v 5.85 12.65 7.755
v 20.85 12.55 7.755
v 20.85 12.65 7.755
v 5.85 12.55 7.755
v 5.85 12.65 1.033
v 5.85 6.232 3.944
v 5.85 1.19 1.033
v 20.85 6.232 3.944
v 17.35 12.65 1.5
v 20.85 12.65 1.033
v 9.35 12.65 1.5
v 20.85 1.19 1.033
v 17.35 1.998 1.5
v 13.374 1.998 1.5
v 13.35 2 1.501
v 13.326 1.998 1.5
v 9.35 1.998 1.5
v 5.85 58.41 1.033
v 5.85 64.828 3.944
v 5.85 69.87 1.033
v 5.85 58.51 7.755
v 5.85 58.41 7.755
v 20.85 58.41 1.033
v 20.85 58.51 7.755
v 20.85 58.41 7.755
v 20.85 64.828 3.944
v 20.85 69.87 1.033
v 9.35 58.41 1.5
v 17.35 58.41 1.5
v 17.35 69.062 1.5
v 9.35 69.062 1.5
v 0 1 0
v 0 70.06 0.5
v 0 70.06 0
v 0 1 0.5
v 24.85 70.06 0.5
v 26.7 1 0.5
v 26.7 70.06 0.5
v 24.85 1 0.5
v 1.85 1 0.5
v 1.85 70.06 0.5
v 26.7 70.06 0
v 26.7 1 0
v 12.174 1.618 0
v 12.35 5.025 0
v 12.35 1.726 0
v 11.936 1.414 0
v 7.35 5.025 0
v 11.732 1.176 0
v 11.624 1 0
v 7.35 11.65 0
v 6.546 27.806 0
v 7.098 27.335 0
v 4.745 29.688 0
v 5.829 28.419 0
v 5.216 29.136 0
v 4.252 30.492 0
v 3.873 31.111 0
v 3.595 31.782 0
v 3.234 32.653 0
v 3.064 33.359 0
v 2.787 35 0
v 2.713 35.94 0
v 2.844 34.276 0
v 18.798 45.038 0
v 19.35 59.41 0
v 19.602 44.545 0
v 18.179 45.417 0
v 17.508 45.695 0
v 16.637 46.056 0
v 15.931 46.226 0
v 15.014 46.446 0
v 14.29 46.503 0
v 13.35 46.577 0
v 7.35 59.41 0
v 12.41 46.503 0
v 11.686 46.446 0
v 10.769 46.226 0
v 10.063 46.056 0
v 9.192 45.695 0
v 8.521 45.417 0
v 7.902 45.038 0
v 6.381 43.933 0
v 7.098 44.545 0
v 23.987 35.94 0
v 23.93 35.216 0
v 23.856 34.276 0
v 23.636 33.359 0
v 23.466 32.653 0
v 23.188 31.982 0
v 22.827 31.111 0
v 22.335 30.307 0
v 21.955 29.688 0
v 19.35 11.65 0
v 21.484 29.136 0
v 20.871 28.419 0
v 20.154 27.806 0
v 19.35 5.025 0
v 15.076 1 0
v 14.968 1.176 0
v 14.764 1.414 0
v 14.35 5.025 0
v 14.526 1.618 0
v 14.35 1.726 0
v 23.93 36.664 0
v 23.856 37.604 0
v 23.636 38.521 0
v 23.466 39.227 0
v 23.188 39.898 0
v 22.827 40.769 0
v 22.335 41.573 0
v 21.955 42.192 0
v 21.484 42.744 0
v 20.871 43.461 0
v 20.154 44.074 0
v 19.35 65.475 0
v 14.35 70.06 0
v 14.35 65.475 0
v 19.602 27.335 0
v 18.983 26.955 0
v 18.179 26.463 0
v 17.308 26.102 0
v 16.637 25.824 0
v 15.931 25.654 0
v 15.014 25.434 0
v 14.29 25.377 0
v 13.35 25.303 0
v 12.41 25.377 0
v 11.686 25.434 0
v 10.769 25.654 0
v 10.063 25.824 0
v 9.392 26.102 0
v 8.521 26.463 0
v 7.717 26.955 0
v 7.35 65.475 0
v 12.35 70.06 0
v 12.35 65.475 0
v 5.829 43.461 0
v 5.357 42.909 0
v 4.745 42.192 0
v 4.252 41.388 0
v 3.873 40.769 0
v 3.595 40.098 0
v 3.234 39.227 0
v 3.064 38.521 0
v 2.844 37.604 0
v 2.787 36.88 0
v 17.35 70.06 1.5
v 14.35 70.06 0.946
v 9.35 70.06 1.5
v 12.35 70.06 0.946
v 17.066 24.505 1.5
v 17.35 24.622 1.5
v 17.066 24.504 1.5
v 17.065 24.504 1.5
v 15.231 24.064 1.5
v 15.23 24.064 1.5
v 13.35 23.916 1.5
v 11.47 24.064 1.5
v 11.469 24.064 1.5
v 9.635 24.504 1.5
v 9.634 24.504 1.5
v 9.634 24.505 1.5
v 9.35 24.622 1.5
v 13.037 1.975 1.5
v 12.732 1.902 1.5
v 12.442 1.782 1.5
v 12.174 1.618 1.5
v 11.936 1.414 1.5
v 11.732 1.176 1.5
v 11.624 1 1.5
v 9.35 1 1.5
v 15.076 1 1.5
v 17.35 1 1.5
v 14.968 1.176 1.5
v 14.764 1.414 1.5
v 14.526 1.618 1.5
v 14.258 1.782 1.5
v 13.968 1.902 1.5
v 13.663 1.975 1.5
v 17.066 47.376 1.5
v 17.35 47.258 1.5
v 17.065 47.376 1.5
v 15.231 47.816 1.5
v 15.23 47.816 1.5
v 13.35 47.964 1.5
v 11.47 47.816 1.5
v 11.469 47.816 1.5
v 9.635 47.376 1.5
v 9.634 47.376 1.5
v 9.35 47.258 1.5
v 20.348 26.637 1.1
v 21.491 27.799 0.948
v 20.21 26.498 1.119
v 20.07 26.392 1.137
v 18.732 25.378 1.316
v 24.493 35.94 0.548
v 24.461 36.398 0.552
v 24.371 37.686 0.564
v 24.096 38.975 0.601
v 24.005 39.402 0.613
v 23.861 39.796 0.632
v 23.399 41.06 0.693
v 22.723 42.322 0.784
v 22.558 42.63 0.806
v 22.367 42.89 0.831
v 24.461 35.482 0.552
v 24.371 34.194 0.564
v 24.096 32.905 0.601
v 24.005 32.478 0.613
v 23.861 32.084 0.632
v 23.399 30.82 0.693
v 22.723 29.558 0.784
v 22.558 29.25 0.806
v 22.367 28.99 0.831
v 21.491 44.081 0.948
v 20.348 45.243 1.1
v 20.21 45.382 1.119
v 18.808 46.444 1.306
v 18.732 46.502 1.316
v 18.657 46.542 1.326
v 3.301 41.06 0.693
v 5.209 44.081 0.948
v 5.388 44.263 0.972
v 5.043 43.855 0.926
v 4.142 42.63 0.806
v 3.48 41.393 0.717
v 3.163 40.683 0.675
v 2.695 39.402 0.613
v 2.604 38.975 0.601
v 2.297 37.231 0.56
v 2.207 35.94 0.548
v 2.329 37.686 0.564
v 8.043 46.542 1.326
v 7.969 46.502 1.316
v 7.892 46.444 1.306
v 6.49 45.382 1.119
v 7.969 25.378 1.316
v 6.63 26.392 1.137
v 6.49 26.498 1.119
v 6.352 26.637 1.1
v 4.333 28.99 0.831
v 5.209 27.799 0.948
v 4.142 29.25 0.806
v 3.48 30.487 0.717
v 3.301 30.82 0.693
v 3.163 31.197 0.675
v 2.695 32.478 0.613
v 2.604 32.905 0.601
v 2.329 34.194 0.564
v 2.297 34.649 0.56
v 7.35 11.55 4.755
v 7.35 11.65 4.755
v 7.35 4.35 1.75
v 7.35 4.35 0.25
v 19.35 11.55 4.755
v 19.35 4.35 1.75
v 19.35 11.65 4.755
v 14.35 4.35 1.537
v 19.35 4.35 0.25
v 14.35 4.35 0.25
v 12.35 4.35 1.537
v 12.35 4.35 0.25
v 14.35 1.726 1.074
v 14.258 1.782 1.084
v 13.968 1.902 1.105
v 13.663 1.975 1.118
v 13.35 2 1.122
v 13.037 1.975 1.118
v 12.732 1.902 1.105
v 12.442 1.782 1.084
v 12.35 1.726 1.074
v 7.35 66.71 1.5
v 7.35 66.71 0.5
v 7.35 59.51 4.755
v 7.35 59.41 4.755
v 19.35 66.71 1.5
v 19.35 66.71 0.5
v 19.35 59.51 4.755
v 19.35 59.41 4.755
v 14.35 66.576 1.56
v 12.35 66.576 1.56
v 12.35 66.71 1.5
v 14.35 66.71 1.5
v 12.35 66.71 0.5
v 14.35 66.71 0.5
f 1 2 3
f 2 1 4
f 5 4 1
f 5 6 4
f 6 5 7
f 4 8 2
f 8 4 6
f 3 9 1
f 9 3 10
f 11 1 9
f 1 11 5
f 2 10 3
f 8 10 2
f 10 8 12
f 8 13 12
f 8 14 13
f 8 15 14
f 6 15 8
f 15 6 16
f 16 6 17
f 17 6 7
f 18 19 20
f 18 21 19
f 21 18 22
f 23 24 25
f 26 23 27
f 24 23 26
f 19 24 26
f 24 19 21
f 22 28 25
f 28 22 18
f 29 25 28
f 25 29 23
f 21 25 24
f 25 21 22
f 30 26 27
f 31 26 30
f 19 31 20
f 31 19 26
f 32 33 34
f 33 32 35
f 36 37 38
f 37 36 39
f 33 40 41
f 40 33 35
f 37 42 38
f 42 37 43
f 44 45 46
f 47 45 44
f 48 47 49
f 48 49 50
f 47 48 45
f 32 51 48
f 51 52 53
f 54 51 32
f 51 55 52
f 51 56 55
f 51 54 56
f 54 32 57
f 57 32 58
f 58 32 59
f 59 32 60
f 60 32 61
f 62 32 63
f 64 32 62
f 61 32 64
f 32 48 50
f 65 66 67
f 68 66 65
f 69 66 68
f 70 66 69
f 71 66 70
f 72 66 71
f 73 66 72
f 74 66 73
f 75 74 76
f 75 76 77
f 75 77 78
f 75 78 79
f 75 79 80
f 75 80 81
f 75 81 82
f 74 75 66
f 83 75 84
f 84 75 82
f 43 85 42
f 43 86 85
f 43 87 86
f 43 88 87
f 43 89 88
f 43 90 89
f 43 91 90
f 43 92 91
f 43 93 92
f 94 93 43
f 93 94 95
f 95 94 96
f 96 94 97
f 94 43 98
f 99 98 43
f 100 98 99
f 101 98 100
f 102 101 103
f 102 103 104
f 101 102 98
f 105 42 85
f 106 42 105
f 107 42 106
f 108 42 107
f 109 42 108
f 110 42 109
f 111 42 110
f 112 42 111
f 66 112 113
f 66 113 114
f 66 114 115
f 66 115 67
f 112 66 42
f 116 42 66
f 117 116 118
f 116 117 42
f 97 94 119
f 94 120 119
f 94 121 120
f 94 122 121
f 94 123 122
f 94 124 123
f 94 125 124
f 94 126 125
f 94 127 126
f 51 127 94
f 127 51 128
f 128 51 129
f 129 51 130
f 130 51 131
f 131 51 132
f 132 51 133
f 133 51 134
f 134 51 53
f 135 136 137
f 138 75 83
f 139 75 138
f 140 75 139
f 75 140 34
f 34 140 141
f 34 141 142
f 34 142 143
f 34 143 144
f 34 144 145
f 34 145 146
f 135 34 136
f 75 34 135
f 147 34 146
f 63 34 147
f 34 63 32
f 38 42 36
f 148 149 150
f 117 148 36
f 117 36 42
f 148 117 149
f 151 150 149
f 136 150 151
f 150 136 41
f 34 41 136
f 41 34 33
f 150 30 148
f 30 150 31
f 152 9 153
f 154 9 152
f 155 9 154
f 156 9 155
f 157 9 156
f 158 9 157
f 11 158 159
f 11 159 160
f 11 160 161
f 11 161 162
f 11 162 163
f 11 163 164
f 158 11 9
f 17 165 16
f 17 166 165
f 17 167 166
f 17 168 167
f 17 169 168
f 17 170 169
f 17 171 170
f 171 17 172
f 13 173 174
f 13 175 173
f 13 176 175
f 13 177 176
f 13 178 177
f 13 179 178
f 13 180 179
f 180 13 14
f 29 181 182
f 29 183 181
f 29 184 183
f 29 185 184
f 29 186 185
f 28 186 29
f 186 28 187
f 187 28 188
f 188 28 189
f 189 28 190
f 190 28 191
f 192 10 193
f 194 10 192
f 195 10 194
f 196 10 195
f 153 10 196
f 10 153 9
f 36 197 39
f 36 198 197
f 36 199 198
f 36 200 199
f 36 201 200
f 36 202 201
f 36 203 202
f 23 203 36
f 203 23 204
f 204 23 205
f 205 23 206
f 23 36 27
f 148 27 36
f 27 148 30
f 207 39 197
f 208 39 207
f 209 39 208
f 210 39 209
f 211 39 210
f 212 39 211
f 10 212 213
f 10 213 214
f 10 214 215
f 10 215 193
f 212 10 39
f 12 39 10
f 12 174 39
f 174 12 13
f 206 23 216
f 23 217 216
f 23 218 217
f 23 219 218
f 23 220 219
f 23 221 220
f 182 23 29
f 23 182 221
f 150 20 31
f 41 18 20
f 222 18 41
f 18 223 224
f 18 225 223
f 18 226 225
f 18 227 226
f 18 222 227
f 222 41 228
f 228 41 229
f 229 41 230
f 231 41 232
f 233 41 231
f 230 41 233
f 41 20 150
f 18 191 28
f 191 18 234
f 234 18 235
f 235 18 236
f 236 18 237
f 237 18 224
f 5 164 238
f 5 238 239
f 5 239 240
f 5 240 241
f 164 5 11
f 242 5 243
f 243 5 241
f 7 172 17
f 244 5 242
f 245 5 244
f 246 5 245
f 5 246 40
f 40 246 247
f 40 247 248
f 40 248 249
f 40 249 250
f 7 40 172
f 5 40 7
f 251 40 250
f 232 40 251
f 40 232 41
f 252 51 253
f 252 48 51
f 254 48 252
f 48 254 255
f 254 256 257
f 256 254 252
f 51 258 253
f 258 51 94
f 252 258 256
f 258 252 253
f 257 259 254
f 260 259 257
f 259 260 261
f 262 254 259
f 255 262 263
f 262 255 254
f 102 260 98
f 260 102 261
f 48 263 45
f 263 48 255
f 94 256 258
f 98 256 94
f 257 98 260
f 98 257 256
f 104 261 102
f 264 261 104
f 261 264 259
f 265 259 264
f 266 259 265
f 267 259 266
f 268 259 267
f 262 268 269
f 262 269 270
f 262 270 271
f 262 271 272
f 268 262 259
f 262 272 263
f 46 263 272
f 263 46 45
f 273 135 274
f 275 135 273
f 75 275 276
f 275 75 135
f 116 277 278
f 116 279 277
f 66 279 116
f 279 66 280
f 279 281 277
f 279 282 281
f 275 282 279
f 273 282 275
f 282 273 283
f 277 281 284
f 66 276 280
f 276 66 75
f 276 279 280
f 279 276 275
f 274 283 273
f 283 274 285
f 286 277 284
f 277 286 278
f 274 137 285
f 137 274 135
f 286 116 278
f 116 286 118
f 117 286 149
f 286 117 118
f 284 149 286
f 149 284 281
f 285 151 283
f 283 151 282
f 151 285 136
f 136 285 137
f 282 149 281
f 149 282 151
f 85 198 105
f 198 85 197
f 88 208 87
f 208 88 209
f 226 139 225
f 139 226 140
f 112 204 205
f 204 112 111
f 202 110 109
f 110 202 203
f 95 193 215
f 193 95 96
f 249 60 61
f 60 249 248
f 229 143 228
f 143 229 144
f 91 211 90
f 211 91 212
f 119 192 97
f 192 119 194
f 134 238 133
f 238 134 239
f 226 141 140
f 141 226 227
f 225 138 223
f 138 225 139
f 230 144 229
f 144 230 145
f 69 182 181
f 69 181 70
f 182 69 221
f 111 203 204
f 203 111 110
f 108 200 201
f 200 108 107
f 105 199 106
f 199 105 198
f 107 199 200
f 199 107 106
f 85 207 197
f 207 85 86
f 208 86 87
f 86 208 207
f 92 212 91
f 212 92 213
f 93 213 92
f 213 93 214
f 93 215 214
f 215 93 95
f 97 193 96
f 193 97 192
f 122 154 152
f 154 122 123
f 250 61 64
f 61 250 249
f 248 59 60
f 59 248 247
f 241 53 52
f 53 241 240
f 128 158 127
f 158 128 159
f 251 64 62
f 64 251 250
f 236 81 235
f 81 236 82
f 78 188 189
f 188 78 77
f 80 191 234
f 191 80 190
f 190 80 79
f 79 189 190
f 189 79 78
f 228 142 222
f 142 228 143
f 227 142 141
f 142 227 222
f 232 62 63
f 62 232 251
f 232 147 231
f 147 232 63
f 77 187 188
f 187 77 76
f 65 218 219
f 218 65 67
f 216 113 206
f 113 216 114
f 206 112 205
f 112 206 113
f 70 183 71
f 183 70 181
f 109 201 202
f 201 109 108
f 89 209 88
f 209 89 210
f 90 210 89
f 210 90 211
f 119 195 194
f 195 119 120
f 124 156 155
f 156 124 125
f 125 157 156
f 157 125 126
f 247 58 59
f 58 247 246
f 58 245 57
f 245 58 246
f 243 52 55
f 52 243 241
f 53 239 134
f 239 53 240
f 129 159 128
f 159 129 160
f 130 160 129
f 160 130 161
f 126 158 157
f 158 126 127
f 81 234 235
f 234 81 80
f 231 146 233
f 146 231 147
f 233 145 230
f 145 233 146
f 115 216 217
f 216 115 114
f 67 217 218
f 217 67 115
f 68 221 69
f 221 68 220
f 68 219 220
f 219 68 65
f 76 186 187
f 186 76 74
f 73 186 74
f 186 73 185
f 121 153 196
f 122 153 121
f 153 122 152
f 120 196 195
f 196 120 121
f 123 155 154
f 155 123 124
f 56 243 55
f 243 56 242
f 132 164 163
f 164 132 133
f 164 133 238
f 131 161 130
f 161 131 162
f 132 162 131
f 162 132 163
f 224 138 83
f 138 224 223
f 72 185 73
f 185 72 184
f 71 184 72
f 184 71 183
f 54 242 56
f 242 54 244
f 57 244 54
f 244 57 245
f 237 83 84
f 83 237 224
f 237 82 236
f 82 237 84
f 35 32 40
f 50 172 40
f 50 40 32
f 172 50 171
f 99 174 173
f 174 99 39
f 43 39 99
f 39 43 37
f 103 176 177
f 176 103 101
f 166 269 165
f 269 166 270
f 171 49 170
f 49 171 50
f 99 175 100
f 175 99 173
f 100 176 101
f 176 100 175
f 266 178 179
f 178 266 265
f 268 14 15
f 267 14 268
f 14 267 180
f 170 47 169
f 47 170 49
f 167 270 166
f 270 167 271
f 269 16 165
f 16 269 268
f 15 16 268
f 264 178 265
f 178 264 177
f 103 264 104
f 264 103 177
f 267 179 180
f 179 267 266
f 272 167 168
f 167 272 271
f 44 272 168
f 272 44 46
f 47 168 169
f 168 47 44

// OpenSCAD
$fn=40;

/* Diffuser Lense For A Particular Project (OpenSCAD) */

/* Camera */
cam_dia = 10.5;

/* LED PCB */
ledpcbw = 26.7;
ledpcbh = 71.88;
ledpcb_thickness = 3.47;
ledpcb_header_pos = 25;
ledpcb_header_w = 9;
holedia = (cam_dia + 8);

/* Diffuser */
diffuserw=ledpcbw;
diffuserh=ledpcbh-1.82;
thickness=ledpcb_thickness-1.59;

/* Top Diffuser */
diffuser_top_h=0.5;

/* Bottom Diffuser */
diffuser_bottom_h=1;

/* Enclosure hole */
enclosurew = ledpcb_header_pos-2;

/* SMD LED */
ledh = 2.76-1.59;
ledw = 4;
ledd = 1.6;

/* INSET */
led_mount_inset = 5;
led_mount_angle = 180-60;
led_mount_tol=2;
led_mount_thickness=3;

module led_mount(rotation, w, d, h, flipthis)
{
  if (flipthis)
  {
    translate([0, 2, 0.5])
    hull()
    {
      translate([ledpcbw/2, d-2, h-3])
        cube([w,0.1,h+2], center=true);
      translate([ledpcbw/2, -d, 0])
        cube([w,0.1,1], center=true);
    }
  }
  else
  {
    translate([0, 0, 0.5])
    hull()
    {
      translate([ledpcbw/2, -d, h-3])
        cube([w,0.1,h+2], center=true);
      translate([ledpcbw/2, d-2, 0])
        cube([w,0.1,1], center=true);
    }
  }
  rotate([rotation,0,0])
    union()
    {
      translate([ledpcbw/2 - w/2, -d/2, -h])
        cube([w,d,h+4]);
    }
}


module led_mount_pit(rotation, w, d, h, flipthis)
{
  higher=1;
  further=2;
  if (flipthis)
  {
    translate([0, 2, 0.5])
    hull()
    {
      translate([ledpcbw/2, d-2+further, h-3+higher/2])
        cube([w,0.1,h+3+higher], center=true);
      translate([ledpcbw/2, -d, +higher/2])
        cube([w,0.1,1+higher/2], center=true);
    }
    
    rotate([rotation-20,0,0])
      union()
      {
        difference()
        {
          translate([ledpcbw/2-1, -d/2, -h])
            cube([2,d,h+10]);
        }
      }
  }
  else
  {
    translate([0, 0, 0.5])
    hull()
    {
      translate([ledpcbw/2, -d-further, h-3+higher/2])
        cube([w,0.1,h+3+higher], center=true);
      translate([ledpcbw/2, d-2, +higher/2])
        cube([w,0.1,1], center=true);
    }
    
    rotate([rotation+20,0,0])
      union()
      {
        difference()
        {
          translate([ledpcbw/2-1, -d/2, -h])
            cube([2,d,h+10]);
        }
      }
  }
}

intersection()
{
difference()
{
  union()
  { 
    // Main object
    difference()
    {
      union()
      { // Main Body
        
        // Top Diffuser
        cube([diffuserw,diffuserh,diffuser_top_h]);
        
        // Bottom Diffuser
        bottom_flat_width = ledw;
        hull()
        {
          translate([(diffuserw - enclosurew)/2,0,0])
            cube([enclosurew,diffuserh,diffuser_top_h]);
          translate([ledpcbw/2 - bottom_flat_width,0,diffuser_top_h])
            cube([bottom_flat_width*2, diffuserh, diffuser_bottom_h]);
        }
        
        // LED Holes
        translate([0,1+led_mount_inset,0])
          led_mount(led_mount_angle,ledw+led_mount_tol*4+led_mount_thickness,ledd+led_mount_tol+led_mount_thickness,ledh+led_mount_thickness+2, true);
        translate([0,diffuserh-led_mount_inset,0])
          led_mount(-led_mount_angle,ledw+led_mount_tol*4+led_mount_thickness,ledd+led_mount_tol+led_mount_thickness,ledh+led_mount_thickness+2, false);
      }

      // LED Holes
      if(0)
      union()
      {
        translate([0,1+led_mount_inset,0])
          led_mount(led_mount_angle,ledw+led_mount_tol*4,ledd+led_mount_tol,ledh+2, true);
        translate([0,diffuserh-led_mount_inset,0])
          led_mount(-led_mount_angle,ledw+led_mount_tol*4,ledd+led_mount_tol,ledh+2, false);
      }
      
     if(1)
     {
     // LED Pit
      translate([0,1+led_mount_inset,0])
        led_mount_pit(led_mount_angle,ledw+led_mount_tol*4,ledd+led_mount_tol,ledh+2, true);
      translate([0,diffuserh-led_mount_inset,0])
        led_mount_pit(-led_mount_angle,ledw+led_mount_tol*4,ledd+led_mount_tol,ledh+2, false);
     }

      // Camera Hole
      translate([ledpcbw/2,ledpcbh/2,-thickness/2])
        cylinder(thickness*3,d=holedia);

      // Camera Hole Bottom Lip
      translate([ledpcbw/2,ledpcbh/2, diffuser_top_h+diffuser_bottom_h-3+0.001])
        cylinder(3, d1=holedia, d2=holedia*1.3);
     }
     

     
  }
  
  /* Trimming */
  translate([0,0,-thickness])
    cube([diffuserw,1,thickness*4]);
  
  /* Remove bottom */
  translate([0,0,-5])
    cube([1000,1000,10], center=true);  
  
  /* Trimming */
  translate([ledpcbw/2,0,-thickness])
    cylinder(r=2,h=100);
}
  cube([diffuserw,diffuserh,1000]);
}
